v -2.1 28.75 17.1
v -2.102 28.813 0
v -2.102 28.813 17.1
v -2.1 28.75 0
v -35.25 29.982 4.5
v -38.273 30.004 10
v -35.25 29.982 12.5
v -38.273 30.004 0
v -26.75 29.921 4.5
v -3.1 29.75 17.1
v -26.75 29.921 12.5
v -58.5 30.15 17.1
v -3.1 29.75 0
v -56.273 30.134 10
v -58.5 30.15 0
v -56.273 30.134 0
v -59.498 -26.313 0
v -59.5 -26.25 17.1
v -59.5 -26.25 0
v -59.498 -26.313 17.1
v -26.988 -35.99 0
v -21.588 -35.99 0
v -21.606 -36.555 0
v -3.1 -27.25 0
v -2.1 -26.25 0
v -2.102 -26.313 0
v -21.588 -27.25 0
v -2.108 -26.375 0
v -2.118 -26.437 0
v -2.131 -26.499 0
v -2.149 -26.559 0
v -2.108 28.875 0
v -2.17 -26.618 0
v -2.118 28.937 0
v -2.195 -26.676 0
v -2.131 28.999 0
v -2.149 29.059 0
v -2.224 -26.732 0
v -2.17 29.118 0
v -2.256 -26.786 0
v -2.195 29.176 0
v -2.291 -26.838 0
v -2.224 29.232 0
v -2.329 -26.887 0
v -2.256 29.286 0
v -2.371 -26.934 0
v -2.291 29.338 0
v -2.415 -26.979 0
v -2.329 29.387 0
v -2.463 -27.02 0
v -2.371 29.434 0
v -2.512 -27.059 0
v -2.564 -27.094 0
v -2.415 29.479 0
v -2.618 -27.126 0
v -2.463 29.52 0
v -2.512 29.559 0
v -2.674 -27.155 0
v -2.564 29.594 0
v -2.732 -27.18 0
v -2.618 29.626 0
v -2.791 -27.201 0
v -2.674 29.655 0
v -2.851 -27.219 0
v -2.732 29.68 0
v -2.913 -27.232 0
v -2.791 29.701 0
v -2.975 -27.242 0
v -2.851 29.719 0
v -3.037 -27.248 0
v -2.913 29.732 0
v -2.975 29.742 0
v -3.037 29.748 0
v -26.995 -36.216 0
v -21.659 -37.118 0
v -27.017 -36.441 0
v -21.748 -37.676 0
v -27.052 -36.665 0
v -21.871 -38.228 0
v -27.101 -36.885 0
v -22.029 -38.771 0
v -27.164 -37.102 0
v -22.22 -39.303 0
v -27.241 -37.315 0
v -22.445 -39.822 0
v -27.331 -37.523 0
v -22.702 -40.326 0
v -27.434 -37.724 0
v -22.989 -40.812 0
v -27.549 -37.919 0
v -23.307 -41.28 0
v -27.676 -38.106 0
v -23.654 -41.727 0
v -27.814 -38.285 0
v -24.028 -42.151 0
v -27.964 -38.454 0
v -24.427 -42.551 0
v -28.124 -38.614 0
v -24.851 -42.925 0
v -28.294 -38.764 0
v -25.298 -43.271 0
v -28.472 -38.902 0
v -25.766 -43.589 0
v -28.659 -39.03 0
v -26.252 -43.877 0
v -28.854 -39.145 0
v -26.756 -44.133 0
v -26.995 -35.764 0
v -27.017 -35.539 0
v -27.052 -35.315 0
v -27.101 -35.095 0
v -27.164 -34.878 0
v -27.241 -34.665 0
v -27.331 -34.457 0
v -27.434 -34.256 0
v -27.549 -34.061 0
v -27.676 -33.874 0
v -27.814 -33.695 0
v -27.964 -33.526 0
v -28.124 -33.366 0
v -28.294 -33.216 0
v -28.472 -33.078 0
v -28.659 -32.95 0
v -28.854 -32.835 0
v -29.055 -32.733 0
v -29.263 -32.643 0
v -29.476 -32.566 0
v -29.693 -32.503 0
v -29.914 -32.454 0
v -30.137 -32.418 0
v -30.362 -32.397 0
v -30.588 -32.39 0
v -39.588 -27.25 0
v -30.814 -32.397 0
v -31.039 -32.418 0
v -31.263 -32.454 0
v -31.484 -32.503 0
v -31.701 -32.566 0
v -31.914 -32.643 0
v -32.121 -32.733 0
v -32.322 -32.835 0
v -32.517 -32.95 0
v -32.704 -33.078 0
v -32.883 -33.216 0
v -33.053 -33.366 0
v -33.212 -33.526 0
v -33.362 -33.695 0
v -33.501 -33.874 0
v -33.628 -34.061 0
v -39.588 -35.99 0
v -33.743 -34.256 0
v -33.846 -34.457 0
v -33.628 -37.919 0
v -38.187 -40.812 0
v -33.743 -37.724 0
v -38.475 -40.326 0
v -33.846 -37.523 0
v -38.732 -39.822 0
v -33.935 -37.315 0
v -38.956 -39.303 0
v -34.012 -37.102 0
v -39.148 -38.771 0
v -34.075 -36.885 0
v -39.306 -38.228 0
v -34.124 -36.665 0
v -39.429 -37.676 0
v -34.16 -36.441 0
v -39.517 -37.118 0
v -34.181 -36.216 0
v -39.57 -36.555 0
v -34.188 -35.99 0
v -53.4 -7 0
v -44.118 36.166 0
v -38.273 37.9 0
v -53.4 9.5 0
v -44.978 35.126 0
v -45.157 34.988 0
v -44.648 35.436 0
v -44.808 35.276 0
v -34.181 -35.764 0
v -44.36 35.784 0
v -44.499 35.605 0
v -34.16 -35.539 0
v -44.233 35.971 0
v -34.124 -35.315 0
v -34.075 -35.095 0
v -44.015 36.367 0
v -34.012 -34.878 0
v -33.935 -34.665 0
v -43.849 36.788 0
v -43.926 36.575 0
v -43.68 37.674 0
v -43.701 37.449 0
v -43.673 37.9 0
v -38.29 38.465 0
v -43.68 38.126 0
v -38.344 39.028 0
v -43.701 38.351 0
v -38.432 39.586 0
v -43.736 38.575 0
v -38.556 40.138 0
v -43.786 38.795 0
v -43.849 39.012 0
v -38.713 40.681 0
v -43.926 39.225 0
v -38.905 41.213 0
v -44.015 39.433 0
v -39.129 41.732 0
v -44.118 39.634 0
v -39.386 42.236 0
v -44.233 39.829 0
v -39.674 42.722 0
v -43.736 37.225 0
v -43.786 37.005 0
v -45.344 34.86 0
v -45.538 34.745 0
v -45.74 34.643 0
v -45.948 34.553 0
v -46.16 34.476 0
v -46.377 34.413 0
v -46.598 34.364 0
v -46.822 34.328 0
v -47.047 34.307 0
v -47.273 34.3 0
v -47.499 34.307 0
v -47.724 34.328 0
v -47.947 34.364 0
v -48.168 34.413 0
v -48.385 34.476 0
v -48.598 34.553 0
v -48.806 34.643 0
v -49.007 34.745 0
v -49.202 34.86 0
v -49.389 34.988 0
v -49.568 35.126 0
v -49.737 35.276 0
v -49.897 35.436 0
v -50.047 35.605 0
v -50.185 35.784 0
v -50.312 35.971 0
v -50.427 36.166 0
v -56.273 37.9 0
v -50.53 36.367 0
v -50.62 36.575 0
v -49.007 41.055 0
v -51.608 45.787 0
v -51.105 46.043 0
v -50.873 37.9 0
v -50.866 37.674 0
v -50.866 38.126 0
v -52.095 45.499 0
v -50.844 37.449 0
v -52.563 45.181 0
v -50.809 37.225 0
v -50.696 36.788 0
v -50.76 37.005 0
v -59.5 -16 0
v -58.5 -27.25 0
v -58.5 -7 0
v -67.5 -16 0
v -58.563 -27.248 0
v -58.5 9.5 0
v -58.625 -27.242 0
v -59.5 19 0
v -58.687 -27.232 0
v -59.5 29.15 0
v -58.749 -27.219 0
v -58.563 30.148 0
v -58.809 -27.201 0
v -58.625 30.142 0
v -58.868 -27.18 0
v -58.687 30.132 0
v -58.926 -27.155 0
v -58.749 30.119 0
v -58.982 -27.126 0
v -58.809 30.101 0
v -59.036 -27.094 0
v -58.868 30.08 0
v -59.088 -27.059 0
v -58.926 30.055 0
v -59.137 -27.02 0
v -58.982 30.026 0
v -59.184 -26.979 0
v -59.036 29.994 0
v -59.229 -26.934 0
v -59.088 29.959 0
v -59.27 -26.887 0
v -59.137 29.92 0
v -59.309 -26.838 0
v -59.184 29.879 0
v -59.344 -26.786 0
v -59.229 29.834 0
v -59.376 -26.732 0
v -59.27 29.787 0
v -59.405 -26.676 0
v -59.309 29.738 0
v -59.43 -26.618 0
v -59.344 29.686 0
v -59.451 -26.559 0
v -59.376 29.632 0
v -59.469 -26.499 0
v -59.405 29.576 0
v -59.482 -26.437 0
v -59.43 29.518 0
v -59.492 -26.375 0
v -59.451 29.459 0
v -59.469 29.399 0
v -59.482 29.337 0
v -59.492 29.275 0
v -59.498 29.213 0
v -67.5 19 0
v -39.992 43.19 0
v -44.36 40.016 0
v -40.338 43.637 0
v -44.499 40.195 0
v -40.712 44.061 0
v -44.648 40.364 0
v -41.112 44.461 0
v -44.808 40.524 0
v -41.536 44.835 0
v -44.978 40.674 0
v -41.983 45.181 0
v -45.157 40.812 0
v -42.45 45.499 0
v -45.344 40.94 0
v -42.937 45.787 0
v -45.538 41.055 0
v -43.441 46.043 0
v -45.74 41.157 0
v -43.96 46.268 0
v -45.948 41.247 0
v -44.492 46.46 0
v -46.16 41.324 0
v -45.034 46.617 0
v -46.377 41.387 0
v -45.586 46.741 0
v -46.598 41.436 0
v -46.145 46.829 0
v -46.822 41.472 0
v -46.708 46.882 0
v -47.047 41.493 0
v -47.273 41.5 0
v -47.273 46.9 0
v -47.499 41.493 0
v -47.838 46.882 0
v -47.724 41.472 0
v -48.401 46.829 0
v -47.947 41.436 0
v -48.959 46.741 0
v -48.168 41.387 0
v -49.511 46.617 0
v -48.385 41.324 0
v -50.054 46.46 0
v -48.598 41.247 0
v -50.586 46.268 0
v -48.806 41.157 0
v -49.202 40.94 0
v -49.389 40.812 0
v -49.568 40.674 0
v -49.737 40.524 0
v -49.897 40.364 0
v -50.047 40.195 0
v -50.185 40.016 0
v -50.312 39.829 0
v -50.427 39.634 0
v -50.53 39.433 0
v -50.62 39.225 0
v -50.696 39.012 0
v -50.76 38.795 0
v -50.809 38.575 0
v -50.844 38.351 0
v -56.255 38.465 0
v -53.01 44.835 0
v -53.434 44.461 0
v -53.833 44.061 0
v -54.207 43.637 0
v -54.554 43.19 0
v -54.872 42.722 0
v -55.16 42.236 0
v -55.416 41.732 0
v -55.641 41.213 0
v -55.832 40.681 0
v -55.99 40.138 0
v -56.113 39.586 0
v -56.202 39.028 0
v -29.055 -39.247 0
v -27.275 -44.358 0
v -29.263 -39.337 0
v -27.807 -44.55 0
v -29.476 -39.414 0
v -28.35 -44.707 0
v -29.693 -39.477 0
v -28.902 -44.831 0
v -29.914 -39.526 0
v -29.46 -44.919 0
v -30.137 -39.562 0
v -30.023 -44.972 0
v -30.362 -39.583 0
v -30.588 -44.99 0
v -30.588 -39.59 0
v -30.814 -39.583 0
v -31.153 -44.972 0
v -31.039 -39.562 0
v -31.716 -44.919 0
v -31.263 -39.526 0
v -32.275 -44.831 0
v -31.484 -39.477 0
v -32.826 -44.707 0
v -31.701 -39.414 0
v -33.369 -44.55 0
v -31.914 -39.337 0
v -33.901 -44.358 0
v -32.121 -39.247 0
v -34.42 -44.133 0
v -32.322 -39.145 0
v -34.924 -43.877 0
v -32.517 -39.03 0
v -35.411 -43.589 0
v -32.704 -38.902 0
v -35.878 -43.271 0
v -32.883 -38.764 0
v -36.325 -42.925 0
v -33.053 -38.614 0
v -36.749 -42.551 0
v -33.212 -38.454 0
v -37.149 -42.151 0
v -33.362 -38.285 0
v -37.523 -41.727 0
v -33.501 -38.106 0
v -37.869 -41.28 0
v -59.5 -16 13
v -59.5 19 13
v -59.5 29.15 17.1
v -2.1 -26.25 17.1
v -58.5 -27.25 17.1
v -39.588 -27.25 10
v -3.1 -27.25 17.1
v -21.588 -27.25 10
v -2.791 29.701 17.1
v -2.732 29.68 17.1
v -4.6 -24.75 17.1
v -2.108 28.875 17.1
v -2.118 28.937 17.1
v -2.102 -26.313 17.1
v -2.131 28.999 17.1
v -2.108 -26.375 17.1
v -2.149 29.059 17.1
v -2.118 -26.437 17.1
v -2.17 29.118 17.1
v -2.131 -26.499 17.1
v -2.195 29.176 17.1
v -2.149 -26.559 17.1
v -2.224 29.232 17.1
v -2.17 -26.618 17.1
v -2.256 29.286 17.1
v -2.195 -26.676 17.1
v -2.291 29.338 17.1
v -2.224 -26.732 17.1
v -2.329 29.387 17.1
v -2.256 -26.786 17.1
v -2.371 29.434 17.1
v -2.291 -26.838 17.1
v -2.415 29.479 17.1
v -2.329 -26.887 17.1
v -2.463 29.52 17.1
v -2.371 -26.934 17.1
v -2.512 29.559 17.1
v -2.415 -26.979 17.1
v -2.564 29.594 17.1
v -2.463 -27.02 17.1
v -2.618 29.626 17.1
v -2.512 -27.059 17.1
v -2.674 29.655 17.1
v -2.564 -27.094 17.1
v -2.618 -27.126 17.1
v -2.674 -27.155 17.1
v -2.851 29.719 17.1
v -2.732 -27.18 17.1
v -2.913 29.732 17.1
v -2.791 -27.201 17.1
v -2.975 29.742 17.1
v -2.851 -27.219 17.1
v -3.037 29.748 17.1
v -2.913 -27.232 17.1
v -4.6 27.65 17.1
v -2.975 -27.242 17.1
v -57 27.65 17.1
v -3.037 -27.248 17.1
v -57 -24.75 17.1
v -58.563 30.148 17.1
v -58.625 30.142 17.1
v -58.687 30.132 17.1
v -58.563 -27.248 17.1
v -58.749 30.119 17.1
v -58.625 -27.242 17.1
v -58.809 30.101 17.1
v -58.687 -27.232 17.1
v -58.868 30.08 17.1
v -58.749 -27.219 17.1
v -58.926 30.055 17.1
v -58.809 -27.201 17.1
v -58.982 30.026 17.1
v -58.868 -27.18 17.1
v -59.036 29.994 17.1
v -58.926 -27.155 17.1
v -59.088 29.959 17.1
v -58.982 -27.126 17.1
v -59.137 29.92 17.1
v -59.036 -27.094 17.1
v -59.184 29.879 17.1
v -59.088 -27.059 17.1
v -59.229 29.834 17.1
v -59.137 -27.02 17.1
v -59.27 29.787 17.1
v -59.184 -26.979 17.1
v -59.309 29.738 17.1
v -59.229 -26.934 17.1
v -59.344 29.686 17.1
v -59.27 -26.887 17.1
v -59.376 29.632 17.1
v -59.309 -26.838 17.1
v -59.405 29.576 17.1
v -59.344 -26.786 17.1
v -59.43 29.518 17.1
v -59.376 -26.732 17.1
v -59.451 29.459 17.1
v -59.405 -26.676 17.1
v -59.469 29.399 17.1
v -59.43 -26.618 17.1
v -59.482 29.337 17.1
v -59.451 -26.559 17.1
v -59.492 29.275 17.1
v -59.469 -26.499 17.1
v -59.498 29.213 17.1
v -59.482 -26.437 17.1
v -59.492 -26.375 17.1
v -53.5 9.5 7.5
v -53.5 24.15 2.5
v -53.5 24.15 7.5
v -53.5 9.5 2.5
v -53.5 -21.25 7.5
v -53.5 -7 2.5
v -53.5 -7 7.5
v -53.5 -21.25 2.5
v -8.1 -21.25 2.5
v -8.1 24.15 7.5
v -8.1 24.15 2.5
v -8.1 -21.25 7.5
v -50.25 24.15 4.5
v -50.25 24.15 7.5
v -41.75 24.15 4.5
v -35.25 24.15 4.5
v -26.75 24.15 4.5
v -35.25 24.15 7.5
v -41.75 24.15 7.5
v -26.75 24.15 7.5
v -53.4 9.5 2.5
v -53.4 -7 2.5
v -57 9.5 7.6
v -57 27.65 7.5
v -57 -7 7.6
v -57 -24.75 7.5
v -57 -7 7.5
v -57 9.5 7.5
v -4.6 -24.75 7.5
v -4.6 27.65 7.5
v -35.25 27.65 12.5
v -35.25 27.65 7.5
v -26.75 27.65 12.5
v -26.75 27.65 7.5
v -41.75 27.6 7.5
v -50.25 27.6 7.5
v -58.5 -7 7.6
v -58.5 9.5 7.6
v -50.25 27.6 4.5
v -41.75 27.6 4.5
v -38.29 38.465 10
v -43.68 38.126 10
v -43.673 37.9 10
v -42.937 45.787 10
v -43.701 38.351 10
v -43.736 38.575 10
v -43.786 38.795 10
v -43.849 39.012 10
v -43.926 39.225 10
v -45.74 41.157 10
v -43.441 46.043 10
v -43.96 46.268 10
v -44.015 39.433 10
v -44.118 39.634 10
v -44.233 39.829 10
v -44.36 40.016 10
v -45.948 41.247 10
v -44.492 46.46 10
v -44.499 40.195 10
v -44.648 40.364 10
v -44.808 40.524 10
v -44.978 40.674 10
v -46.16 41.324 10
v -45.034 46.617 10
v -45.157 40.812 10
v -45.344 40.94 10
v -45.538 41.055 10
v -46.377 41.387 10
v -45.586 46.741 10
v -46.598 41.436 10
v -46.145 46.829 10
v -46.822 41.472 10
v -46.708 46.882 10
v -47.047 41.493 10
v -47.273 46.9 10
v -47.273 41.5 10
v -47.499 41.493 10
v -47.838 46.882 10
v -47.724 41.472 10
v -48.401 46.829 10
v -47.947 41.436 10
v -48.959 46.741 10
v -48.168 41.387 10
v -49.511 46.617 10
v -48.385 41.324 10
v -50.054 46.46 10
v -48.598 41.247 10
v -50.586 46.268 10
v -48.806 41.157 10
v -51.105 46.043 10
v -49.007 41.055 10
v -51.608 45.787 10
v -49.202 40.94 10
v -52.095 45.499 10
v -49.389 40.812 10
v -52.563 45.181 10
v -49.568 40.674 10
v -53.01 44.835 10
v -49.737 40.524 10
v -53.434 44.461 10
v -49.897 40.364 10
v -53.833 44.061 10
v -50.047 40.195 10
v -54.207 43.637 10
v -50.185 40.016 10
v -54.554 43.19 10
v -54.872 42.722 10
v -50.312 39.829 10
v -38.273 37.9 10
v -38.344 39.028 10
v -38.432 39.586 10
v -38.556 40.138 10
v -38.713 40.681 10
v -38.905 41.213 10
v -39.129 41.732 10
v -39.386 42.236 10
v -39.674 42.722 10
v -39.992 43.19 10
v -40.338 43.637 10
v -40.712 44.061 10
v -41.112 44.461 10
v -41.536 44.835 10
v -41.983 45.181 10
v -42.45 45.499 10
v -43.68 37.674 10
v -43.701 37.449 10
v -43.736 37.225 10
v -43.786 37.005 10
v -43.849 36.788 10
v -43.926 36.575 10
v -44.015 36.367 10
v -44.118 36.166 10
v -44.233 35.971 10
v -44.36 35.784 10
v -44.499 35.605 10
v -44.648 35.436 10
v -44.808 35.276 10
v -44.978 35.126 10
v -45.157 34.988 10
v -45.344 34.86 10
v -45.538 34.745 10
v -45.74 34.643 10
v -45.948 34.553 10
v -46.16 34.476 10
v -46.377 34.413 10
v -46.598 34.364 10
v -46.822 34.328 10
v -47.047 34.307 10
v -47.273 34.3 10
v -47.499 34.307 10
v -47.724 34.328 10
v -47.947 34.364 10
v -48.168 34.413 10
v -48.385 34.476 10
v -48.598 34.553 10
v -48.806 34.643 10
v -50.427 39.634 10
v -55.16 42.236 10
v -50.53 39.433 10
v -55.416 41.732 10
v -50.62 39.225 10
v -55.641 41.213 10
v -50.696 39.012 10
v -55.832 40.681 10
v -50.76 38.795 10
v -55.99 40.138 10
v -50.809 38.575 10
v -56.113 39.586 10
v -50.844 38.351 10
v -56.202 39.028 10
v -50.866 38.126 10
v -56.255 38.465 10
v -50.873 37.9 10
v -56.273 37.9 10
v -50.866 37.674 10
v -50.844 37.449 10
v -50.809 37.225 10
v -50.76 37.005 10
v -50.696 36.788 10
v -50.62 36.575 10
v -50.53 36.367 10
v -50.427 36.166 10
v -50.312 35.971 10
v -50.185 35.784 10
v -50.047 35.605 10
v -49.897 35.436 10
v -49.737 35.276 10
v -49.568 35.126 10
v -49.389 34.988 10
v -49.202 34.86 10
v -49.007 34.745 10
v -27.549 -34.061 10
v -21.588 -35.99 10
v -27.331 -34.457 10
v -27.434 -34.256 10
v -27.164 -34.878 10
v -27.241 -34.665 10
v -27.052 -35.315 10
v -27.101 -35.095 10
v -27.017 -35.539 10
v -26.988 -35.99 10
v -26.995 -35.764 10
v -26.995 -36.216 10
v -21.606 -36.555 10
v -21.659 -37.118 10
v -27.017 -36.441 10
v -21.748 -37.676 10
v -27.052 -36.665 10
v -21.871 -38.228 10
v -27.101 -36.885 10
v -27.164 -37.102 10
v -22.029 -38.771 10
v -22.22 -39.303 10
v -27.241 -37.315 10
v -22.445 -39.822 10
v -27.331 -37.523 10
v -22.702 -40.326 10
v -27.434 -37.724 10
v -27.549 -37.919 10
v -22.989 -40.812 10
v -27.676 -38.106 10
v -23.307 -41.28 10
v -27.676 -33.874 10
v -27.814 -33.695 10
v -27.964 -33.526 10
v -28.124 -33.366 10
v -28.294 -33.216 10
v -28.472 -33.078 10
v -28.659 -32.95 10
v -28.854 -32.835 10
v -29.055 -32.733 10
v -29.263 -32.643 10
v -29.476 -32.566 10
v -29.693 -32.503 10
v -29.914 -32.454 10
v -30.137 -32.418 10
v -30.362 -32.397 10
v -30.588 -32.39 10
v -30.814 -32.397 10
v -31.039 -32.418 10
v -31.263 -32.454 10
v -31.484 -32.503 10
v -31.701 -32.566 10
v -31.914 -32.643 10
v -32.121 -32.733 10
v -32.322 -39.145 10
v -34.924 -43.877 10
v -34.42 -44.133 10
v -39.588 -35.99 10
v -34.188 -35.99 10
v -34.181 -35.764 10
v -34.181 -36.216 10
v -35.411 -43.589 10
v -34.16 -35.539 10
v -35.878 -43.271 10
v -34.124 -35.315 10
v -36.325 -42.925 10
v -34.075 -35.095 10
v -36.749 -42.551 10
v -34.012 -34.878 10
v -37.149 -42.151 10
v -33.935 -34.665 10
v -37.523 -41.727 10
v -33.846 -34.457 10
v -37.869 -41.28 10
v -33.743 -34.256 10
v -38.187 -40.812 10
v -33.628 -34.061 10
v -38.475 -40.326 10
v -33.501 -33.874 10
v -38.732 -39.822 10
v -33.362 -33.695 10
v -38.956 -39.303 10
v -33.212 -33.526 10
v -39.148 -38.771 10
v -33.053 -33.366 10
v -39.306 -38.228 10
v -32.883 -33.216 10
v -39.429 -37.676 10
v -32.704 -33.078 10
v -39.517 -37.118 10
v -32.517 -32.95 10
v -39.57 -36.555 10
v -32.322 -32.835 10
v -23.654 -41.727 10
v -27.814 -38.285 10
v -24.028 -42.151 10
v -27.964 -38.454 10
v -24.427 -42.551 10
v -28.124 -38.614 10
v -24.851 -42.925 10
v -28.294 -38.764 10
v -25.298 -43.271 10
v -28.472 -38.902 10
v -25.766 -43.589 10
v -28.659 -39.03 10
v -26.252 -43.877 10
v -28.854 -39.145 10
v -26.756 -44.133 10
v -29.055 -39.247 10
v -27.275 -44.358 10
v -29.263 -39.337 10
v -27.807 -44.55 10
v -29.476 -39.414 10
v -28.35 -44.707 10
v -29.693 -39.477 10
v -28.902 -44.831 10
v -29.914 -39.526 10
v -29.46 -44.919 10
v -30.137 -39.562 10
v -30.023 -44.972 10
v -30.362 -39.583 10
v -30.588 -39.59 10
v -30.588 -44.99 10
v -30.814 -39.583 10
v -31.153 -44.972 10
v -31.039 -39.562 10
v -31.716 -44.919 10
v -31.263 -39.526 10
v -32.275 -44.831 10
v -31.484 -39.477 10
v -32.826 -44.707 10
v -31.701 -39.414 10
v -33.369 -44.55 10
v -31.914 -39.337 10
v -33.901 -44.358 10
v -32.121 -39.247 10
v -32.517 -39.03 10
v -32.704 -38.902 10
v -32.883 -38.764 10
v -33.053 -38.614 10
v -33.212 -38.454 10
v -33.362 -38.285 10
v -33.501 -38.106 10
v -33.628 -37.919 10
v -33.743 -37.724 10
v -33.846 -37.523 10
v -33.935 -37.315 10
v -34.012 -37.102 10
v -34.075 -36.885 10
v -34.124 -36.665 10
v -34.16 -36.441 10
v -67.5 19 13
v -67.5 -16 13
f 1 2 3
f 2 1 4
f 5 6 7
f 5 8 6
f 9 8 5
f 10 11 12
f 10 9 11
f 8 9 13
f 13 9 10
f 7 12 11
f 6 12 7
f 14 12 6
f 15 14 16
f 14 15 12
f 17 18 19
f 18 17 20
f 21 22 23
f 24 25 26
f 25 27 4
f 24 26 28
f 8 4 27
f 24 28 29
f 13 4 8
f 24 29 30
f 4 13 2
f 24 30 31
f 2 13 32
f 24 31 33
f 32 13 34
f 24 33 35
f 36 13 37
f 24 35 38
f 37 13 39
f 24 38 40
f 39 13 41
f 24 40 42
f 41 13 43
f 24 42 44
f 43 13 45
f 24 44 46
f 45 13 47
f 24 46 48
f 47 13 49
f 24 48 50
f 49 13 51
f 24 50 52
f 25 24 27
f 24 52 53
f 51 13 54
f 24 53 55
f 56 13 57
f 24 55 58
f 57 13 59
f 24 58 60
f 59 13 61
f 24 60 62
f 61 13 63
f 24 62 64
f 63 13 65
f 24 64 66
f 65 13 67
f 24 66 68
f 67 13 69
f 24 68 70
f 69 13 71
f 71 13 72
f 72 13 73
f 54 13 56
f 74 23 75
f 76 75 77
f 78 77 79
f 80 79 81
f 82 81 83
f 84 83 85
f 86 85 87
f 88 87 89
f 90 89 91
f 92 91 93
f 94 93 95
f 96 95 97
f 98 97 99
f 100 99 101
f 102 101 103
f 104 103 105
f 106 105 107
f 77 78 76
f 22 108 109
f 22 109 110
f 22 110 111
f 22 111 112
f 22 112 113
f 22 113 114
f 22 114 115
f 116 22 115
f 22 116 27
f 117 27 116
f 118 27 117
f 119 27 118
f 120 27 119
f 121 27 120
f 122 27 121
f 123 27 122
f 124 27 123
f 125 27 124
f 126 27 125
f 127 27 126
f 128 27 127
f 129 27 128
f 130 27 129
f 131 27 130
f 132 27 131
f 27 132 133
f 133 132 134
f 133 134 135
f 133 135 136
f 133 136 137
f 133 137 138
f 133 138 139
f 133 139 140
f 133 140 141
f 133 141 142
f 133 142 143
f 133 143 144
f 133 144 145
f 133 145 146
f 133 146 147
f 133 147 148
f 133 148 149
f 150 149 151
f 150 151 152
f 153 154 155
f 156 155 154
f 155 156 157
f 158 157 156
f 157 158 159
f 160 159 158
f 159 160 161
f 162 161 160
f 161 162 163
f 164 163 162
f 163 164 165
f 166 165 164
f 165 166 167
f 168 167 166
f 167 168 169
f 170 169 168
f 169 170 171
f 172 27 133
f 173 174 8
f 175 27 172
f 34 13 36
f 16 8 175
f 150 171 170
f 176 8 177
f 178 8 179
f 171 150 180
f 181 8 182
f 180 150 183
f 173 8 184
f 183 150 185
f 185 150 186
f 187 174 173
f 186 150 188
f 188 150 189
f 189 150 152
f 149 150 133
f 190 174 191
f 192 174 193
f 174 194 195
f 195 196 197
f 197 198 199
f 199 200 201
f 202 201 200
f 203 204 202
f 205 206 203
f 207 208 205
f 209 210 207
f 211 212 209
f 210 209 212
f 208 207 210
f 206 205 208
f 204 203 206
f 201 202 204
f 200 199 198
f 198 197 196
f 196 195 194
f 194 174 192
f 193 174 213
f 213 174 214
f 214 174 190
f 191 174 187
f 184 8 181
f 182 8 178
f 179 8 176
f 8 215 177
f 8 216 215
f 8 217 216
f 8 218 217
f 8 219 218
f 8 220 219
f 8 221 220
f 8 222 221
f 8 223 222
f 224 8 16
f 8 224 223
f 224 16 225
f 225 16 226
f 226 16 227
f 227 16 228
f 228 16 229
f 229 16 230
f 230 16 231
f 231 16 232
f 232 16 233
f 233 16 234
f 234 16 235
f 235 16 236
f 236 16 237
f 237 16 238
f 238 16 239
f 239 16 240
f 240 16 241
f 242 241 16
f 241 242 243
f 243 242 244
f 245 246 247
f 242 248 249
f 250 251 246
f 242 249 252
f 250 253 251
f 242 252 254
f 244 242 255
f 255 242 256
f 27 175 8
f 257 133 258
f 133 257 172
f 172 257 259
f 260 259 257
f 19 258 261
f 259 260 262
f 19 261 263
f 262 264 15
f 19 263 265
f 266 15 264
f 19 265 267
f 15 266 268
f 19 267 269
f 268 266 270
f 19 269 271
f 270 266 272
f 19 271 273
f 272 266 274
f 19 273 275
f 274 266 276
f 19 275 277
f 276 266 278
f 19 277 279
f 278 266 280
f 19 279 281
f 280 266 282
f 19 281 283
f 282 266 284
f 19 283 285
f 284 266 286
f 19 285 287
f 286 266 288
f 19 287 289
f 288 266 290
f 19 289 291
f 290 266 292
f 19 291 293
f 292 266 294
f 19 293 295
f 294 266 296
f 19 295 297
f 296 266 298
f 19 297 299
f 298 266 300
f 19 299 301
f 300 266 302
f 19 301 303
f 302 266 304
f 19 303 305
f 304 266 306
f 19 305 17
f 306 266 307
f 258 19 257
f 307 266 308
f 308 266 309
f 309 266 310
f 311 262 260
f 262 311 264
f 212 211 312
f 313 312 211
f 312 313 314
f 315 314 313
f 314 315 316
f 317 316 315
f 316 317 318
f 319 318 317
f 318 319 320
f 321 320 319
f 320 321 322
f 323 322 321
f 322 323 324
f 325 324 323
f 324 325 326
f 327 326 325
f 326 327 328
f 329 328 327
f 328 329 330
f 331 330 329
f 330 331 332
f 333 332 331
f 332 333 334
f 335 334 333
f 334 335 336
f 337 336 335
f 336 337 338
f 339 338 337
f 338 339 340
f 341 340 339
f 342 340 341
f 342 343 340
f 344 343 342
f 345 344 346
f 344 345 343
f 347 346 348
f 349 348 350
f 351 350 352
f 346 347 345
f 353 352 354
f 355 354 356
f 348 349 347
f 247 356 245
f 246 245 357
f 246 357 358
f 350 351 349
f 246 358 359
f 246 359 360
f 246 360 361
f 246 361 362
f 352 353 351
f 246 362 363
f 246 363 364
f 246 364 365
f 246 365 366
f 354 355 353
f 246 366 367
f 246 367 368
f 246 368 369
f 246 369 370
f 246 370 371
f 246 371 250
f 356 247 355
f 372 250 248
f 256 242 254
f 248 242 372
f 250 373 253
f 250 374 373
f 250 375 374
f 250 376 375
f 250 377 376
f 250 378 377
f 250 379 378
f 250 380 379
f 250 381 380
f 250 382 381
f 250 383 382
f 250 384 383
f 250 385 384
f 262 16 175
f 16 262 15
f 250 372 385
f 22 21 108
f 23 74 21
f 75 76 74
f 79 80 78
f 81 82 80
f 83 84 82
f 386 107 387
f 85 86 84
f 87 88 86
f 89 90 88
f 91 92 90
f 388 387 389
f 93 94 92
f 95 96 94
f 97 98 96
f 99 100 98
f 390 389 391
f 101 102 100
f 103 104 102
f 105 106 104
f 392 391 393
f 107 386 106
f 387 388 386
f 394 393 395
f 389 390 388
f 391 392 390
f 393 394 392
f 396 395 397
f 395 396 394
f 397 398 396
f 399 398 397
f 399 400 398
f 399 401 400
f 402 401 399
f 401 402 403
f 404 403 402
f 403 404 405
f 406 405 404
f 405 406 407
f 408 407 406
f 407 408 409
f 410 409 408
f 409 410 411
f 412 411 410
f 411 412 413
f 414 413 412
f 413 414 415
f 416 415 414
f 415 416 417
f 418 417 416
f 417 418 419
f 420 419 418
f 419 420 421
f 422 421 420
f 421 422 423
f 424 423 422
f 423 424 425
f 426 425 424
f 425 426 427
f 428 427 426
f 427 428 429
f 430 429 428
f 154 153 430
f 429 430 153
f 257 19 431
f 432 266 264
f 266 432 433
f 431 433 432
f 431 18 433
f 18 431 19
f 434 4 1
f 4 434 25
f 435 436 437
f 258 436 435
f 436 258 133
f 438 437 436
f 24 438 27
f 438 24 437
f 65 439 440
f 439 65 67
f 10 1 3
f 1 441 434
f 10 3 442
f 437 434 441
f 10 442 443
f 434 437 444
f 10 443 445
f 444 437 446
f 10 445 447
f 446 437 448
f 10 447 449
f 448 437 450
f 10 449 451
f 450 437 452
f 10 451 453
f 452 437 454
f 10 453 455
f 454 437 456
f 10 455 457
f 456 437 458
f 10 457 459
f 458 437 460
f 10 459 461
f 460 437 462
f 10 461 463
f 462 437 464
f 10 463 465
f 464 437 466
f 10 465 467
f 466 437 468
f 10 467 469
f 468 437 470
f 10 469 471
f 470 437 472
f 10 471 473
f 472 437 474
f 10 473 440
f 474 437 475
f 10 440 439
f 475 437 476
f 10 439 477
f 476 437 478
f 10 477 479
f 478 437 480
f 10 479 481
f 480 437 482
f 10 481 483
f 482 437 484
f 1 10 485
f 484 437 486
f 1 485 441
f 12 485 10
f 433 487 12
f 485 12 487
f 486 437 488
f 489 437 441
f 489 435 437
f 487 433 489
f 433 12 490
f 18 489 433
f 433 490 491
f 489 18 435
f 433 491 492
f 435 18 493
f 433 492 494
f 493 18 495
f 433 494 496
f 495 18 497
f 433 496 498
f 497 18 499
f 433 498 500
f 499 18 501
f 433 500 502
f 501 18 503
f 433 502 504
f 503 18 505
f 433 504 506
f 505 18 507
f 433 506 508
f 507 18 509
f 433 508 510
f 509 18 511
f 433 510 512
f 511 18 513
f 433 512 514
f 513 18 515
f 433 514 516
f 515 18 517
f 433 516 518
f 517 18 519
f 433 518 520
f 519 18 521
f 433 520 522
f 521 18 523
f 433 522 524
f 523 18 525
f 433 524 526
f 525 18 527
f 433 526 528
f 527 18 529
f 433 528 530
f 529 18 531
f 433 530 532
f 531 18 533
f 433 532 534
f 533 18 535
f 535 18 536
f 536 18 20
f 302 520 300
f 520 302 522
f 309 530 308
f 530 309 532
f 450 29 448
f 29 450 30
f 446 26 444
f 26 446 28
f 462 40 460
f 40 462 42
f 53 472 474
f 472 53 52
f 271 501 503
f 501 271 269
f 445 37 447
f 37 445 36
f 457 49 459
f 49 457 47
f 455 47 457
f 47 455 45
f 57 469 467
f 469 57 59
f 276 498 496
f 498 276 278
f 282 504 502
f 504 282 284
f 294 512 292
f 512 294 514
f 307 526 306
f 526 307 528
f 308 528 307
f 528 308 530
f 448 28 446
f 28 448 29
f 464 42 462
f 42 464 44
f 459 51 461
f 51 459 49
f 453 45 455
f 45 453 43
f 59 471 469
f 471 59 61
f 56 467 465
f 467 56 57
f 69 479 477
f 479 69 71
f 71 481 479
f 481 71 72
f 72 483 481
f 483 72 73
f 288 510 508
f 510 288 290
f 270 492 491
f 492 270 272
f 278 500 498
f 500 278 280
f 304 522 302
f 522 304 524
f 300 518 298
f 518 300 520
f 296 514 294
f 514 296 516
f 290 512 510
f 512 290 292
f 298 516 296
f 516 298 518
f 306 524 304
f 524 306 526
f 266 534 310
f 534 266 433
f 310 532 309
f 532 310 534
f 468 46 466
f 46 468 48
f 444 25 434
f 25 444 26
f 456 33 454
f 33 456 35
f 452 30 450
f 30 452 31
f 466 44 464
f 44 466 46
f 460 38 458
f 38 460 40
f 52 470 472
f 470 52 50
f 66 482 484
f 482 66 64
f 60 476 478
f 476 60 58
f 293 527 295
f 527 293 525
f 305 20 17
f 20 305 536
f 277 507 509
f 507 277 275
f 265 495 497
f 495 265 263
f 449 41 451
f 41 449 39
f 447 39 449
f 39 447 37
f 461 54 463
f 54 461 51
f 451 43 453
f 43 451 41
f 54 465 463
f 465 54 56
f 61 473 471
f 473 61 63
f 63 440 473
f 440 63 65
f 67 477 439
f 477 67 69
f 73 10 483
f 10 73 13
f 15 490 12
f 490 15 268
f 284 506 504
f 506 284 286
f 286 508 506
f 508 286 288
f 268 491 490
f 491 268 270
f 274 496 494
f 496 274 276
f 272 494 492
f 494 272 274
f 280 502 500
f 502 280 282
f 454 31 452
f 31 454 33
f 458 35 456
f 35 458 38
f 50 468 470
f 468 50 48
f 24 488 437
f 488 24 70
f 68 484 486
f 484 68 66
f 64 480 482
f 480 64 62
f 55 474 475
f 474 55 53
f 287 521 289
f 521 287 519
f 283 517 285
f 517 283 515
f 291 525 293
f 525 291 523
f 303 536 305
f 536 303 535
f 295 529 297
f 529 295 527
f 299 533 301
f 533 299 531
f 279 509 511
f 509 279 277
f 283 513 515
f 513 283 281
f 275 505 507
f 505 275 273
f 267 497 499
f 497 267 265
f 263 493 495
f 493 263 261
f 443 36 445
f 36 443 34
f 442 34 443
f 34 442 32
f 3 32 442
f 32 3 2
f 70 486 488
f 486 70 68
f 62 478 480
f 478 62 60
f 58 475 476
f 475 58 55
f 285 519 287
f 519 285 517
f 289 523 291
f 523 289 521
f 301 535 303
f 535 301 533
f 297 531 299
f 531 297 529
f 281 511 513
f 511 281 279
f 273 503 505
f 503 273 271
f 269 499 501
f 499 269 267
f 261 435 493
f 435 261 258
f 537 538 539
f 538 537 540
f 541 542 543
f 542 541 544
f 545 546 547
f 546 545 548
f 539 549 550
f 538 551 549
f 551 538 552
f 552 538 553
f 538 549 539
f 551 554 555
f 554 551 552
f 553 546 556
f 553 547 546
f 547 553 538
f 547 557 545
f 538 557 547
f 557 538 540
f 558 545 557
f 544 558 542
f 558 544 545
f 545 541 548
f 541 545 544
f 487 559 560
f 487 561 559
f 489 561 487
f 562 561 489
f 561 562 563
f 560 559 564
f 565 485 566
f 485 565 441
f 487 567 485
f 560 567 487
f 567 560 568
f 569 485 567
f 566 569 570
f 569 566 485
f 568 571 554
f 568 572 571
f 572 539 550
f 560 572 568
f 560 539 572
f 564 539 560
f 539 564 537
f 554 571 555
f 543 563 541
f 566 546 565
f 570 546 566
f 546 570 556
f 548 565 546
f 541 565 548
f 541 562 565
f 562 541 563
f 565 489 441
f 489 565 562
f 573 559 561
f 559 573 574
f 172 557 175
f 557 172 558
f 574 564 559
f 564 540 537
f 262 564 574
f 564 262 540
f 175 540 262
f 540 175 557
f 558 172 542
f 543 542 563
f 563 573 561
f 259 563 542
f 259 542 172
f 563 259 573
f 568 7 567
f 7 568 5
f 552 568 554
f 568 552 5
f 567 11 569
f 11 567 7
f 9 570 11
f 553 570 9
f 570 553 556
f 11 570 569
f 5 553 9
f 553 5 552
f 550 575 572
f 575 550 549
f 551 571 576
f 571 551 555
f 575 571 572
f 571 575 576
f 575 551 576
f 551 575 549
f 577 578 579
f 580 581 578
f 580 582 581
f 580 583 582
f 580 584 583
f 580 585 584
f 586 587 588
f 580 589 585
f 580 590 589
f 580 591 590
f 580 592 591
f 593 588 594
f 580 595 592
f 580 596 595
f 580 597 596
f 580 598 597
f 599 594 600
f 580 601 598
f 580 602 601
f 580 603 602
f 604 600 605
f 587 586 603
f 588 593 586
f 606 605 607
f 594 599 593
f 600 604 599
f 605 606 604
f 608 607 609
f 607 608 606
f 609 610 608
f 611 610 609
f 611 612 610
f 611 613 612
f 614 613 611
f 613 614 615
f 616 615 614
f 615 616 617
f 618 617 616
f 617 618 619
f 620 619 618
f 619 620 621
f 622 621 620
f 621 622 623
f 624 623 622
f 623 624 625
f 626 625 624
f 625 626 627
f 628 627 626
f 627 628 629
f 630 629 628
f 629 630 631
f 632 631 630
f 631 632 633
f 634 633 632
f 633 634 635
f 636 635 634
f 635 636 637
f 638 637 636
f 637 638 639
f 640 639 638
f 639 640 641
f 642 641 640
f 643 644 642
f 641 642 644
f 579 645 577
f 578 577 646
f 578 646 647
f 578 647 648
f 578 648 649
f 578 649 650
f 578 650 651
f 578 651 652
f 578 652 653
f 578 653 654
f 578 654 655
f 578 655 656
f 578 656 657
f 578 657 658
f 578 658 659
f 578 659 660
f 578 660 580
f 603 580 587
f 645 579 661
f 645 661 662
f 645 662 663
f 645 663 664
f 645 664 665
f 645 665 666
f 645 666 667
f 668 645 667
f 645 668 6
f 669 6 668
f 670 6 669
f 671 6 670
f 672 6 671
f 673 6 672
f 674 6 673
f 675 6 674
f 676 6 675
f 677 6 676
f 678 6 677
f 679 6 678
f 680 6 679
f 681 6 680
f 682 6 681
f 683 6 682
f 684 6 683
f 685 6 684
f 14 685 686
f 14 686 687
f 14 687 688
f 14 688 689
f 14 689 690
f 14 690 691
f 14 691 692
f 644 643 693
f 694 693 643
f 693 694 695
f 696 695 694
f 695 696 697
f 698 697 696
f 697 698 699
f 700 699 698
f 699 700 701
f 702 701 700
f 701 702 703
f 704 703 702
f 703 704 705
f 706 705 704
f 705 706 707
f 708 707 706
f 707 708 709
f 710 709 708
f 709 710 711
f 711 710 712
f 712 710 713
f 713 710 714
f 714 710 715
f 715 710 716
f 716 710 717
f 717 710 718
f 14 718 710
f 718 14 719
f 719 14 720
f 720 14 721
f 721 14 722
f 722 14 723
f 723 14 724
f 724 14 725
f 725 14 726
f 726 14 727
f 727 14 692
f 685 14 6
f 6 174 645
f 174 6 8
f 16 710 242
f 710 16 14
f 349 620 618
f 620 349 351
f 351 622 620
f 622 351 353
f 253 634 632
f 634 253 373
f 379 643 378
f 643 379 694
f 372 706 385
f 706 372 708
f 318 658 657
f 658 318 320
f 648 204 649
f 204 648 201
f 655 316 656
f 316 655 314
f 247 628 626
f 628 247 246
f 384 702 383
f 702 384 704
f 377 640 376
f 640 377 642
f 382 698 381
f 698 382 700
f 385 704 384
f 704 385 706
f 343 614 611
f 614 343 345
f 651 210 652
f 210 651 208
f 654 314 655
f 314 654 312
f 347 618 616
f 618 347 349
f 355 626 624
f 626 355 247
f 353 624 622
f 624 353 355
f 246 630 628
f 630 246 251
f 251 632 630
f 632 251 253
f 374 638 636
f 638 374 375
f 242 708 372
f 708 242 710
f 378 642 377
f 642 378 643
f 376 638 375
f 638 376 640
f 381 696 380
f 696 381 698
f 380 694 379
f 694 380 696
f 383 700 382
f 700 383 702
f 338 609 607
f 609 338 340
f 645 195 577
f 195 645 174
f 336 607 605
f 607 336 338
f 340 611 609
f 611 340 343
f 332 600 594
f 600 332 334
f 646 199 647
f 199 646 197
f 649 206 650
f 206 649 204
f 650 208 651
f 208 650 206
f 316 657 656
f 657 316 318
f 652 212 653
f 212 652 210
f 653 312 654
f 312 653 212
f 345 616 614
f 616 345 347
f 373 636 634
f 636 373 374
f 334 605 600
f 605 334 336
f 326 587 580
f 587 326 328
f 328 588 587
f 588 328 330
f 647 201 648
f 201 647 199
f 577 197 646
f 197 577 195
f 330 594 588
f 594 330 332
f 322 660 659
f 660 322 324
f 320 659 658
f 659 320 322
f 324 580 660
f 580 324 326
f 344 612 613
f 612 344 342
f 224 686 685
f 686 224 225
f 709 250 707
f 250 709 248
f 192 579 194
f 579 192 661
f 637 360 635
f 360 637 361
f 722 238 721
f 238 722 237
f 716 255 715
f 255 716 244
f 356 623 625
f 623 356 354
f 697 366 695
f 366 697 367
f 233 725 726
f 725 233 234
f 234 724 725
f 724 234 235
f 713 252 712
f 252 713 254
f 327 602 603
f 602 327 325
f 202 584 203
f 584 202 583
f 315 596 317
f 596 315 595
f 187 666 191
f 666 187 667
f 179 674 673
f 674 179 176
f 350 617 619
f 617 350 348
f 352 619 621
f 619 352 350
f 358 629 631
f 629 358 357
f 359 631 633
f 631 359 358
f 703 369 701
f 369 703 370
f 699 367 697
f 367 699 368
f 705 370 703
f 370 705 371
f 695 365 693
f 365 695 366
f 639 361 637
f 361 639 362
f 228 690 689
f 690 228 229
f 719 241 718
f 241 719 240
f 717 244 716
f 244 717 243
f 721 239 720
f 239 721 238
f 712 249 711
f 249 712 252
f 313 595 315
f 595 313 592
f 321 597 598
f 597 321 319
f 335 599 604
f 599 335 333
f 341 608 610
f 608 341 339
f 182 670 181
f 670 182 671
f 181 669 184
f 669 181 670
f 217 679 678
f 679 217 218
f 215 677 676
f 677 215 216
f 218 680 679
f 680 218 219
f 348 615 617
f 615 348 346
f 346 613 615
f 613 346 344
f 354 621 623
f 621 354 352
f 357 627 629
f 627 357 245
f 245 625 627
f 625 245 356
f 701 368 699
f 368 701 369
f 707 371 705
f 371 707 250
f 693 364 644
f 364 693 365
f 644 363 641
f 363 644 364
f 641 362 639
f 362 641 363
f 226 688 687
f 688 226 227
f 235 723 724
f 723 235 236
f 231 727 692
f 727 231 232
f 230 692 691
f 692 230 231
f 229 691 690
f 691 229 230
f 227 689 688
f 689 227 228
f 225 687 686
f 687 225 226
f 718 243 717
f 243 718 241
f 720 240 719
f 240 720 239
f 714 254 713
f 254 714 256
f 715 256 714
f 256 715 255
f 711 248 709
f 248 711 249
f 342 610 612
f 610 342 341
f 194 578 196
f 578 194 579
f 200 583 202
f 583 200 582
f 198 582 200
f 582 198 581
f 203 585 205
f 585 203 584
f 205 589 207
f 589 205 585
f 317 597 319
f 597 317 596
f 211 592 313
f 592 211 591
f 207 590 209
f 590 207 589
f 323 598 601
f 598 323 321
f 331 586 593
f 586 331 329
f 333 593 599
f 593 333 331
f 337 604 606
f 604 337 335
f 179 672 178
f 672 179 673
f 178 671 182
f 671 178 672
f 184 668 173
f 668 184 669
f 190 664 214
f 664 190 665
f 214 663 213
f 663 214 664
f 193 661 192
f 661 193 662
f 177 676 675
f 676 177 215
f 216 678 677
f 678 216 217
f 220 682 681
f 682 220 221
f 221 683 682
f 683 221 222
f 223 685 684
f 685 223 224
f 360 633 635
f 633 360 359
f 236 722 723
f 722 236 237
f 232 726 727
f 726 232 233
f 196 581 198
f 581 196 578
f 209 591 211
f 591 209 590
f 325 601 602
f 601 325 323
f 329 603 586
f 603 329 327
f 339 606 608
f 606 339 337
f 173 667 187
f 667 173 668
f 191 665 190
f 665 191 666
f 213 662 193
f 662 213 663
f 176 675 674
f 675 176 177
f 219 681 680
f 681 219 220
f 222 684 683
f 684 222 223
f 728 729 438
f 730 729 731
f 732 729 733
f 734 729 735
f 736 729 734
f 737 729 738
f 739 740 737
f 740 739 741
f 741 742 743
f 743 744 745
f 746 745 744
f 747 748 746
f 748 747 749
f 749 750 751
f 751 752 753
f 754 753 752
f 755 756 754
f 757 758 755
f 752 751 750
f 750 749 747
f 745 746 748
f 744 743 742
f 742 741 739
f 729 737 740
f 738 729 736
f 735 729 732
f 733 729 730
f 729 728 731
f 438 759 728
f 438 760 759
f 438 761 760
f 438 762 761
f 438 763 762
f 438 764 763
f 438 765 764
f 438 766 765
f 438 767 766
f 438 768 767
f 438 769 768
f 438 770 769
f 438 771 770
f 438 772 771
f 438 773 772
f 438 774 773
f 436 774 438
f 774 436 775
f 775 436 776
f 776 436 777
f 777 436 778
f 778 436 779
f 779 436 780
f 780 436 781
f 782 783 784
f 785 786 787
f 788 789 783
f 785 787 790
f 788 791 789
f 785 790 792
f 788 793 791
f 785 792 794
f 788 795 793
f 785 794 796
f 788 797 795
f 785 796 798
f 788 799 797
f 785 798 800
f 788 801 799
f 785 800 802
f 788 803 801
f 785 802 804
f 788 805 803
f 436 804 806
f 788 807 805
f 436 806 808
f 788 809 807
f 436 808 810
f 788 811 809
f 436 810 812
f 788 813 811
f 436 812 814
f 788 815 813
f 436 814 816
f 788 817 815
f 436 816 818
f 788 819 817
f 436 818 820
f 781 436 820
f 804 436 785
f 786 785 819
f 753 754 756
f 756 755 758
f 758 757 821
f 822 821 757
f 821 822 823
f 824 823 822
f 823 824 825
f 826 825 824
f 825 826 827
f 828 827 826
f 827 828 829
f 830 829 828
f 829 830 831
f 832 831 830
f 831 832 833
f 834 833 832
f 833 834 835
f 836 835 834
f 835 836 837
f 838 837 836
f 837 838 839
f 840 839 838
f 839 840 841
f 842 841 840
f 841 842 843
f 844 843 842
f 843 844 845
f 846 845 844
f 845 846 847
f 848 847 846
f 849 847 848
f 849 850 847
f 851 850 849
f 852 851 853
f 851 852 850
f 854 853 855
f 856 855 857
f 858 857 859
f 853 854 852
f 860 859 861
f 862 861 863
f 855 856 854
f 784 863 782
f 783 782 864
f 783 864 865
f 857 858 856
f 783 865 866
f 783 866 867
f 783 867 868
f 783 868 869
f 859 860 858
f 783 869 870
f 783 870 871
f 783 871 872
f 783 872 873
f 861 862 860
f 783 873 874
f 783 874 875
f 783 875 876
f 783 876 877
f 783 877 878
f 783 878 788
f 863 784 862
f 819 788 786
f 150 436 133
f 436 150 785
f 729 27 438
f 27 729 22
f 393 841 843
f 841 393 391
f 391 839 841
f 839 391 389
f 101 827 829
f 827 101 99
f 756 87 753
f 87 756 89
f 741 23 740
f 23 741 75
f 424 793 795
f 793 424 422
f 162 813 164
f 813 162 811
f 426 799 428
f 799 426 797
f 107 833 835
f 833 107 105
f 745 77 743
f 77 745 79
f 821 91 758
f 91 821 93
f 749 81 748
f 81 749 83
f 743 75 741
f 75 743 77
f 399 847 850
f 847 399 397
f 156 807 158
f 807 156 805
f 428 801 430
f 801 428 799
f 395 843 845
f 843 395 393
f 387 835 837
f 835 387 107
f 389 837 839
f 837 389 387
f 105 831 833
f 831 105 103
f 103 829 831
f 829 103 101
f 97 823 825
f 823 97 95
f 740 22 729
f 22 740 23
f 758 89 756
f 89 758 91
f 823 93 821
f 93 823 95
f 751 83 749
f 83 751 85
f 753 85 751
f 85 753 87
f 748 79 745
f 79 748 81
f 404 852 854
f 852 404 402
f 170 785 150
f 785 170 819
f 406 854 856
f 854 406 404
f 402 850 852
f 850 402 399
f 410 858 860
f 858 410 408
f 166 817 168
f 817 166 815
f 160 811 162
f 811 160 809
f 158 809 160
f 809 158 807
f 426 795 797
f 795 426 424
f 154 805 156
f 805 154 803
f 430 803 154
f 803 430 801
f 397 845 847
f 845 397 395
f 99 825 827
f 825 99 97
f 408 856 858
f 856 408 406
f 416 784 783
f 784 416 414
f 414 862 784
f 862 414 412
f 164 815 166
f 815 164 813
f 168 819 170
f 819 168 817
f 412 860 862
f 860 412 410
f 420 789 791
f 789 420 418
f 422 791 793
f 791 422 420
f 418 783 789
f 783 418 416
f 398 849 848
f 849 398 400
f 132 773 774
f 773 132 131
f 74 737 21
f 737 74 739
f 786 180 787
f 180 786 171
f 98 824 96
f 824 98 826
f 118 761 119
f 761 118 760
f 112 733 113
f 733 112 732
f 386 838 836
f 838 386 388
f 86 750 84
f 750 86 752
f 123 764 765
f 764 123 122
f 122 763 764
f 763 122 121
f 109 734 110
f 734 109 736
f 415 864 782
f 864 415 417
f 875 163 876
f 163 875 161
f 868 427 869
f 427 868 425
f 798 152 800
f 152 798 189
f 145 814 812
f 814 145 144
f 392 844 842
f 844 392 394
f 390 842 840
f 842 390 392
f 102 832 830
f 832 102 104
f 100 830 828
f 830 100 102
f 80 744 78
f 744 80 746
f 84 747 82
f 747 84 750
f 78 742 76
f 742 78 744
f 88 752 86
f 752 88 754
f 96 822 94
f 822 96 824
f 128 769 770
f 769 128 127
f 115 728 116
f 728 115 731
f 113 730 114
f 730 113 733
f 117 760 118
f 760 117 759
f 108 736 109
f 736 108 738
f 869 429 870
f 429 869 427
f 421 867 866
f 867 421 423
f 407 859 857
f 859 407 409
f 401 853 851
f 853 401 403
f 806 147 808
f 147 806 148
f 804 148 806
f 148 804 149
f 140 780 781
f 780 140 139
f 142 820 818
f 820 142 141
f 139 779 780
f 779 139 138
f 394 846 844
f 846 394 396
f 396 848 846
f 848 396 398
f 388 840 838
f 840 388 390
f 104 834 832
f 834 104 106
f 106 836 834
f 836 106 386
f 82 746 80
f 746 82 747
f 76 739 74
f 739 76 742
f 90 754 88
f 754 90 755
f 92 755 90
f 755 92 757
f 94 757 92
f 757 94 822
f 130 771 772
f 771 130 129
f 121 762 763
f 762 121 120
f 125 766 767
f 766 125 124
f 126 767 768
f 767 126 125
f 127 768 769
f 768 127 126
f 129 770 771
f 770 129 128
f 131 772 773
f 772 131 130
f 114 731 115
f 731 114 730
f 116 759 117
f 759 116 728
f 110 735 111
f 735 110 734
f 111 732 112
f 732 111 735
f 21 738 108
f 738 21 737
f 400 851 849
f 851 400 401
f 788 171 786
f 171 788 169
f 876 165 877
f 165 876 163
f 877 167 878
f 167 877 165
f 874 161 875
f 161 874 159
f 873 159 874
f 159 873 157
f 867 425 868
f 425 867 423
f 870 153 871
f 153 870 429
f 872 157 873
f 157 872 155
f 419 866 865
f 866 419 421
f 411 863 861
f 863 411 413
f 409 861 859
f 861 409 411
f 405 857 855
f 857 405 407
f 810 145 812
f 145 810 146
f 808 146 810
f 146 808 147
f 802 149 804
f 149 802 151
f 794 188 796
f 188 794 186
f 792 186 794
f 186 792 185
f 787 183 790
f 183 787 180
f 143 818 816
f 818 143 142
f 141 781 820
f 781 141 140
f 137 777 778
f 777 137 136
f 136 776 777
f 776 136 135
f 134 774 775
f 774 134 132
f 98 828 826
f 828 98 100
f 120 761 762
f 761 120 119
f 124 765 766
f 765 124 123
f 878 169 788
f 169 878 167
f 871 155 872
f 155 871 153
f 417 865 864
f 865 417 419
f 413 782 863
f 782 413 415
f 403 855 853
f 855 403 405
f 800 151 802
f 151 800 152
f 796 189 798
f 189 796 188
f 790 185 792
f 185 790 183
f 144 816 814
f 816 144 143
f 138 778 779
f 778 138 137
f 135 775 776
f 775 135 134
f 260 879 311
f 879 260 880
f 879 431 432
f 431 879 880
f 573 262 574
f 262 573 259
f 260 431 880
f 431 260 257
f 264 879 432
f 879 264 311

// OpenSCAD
/* [Global] */

// Which part would you like to see?
part = "both"; // [both:Lid and base,base:Base only,lid:Lid only]

/* [GPS Box] */

// Size of the GPS board
GpsBase = 52;

// Clearance required below the PCB
UnderDepth = 5;

// Clearance required above the PCB
OverDepth = 8;

// Width of the connection plug
CableHoleH = 13;

// Height of the connection plug
CableHoleW = 16.5;

// Distance of the connection from the edge of the board
CableHolePos = GpsBase/2 - CableHoleW/2 ; //16

// Mounting holes for the base? (Zero=no holes)
MountingCentres = 0;

// Diameter of the mounting holes?
MountingBoltSize = 3;

/* [Advanced Settings] */
// Thickness of the walls, lid and bottom
Thickness = 2.5;

// Width of the shelf that supports the PCB
Shelf = 3.5;

// Roundness of the corners
CornerRadius = 1;

// Thickness of the PCB
PCB = 1.6;

// Diameter of the hole in the lid
Window = 0;

// Extra tolerance for the lid/base fitting
Tolerance = 0.2;

/* [Hidden] */
j = 0.1;
$fn=100;
InnerHeight = UnderDepth + PCB + OverDepth;

BaseInnerLarge = GpsBase + (Tolerance * 2);
BaseInnerSmall = BaseInnerLarge - (Shelf * 2);
BaseOuter = BaseInnerLarge + (Thickness * 2);

LidOuterLip = BaseOuter;
LidOuter = BaseInnerLarge - (Tolerance * 2);
LidInner = LidOuter - (Thickness * 2);

SemiLidOuterLip = LidOuterLip / 2;
SemiLidOuter = LidOuter / 2;
SemiLidInner = LidInner / 2;

module Base()
{
	translate([0, 0, Thickness])
	difference()
	{
		// Walls & floor
		translate([0, 0, -Thickness])
		hull()
		{
			translate([BaseOuter-CornerRadius, GpsBase+Thickness*2-CornerRadius, 0]) cylinder(r = CornerRadius, h = InnerHeight+Thickness);
			translate([CornerRadius, BaseOuter-CornerRadius, 0]) cylinder(r = CornerRadius, h = InnerHeight+Thickness);
			translate([BaseOuter-CornerRadius, CornerRadius, 0]) cylinder(r = CornerRadius, h = InnerHeight+Thickness);
			translate([CornerRadius, CornerRadius, 0]) cylinder(r = CornerRadius, h = InnerHeight+Thickness);
		}
		
		// Deepest cut
		translate([Thickness+Shelf, Thickness+Shelf, 0]) cube([BaseInnerSmall, BaseInnerSmall, InnerHeight]);

		// Shelf
		translate([Thickness, Thickness, UnderDepth]) cube([BaseInnerLarge, BaseInnerLarge, InnerHeight]);
		
		// Hole for wire
		translate([-j, Thickness+CableHolePos, UnderDepth-CableHoleH]) cube([Thickness+Shelf+j*2, CableHoleW, CableHoleH+j]);
        
		// Mounting Holes
		if(MountingCentres > 0)
		{
			translate([-MountingCentres/2, -MountingCentres/2, 0]) translate([BaseOuter * 0.5, BaseOuter * 0.5, -Thickness-j]) cylinder(r = MountingBoltSize/2, h = Thickness+j*2);
			translate([-MountingCentres/2, MountingCentres/2, 0]) translate([BaseOuter * 0.5, BaseOuter * 0.5, -Thickness-j]) cylinder(r = MountingBoltSize/2, h = Thickness+j*2);
			translate([MountingCentres/2, -MountingCentres/2, 0]) translate([BaseOuter * 0.5, BaseOuter * 0.5, -Thickness-j]) cylinder(r = MountingBoltSize/2, h = Thickness+j*2);
			translate([MountingCentres/2, MountingCentres/2, 0]) translate([BaseOuter * 0.5, BaseOuter * 0.5, -Thickness-j]) cylinder(r = MountingBoltSize/2, h = Thickness+j*2);
		}
	}
    
}

module Lid()
{
	translate([SemiLidOuterLip, SemiLidOuterLip, 0])
	union()
	{
		difference()
		{
			// Lid lip
			hull()
			{
				translate([SemiLidOuterLip-CornerRadius,    SemiLidOuterLip-CornerRadius, 0]) cylinder(r = CornerRadius, h = Thickness);
				translate([-SemiLidOuterLip+CornerRadius,  SemiLidOuterLip-CornerRadius, 0]) cylinder(r = CornerRadius, h = Thickness);
				translate([SemiLidOuterLip-CornerRadius,   -SemiLidOuterLip+CornerRadius, 0]) cylinder(r = CornerRadius, h = Thickness);
				translate([-SemiLidOuterLip+CornerRadius, -SemiLidOuterLip+CornerRadius, 0]) cylinder(r = CornerRadius, h = Thickness);
			}
			
			if(Window > 0)
			{
				// GPS Window
				translate([0, 0, -j]) cylinder(r = Window/2, h = Thickness+j*2);
			}
		}

		difference()
		{
			// Outer dimension
			hull()
			{
				translate([SemiLidOuter-CornerRadius,   SemiLidOuter-CornerRadius, j*2]) cylinder(r = CornerRadius, h = OverDepth);
				translate([-SemiLidOuter+CornerRadius, SemiLidOuter-CornerRadius, j*2]) cylinder(r = CornerRadius, h = OverDepth);
				translate([-SemiLidOuter+CornerRadius, -SemiLidOuter+CornerRadius, j*2]) cylinder(r = CornerRadius, h = OverDepth);
				translate([SemiLidOuter-CornerRadius, -SemiLidOuter+CornerRadius, j*2]) cylinder(r = CornerRadius, h = OverDepth);
			}
			
			// Inner dimension
			hull()
			{			
				translate([SemiLidInner-CornerRadius,   SemiLidInner-CornerRadius, j]) cylinder(r = CornerRadius, h = OverDepth+j*2);
				translate([-SemiLidInner+CornerRadius, SemiLidInner-CornerRadius, j]) cylinder(r = CornerRadius, h = OverDepth+j*2);
				translate([-SemiLidInner+CornerRadius, -SemiLidInner+CornerRadius, j]) cylinder(r = CornerRadius, h = OverDepth+j*2);
				translate([SemiLidInner-CornerRadius, -SemiLidInner+CornerRadius, j]) cylinder(r = CornerRadius, h = OverDepth+j*2);
			}
		}
		
	}
}

module print_part()
{
	if (part == "lid")
	{
		translate([GpsBase+Thickness, GpsBase+Thickness, 0]*-0.5)
		Lid();
	} else if (part == "base")
	{
		translate([GpsBase+Thickness, GpsBase+Thickness, 0]*-0.5)
		Base();
		
	} else if (part == "both")
	{
		translate([-(GpsBase+Thickness*3), -(GpsBase+Thickness)*0.5, 0])
		Base();

		//translate([Thickness, -(GpsBase+Thickness)*0.5, 0]) 
		//Lid();
	}
}

difference(){
	print_part();
	translate([-35.25,21,4.5])cube([8.5,12,8]);//usb
	translate([-50.25,21,4.5])cube([8.5,6.6,8]);//usb

}

translate([-GpsBase-Thickness-13,-16,0])cube([9,35,13]); //cover

translate([-GpsBase/1.1,GpsBase/2+11.9,0])rotate([0,0,90])foot();
translate([-GpsBase/1.7,-GpsBase/2-(9.99),0])rotate([0,0,-90])foot();


//translate([-GpsBase*1.1,1,5])cylinder(h=100,r=CableHoleW/2);
module foot() {
    h = 20;
    h1 = h/2;
    //Screw radius
    sc = 7.2/2; // 0.25"
    module f(){ //boxy inner edge
        translate([-sc*2.5,-sc*2.5,0])cube([sc*2.5,sc*5,h1]);
        cylinder(h = h1, r=sc*2.5);
    }
	difference(){ //actual hole
		f();
		translate([0,0,-0.1])cylinder(h = h1+1, r=sc);
	}

}
